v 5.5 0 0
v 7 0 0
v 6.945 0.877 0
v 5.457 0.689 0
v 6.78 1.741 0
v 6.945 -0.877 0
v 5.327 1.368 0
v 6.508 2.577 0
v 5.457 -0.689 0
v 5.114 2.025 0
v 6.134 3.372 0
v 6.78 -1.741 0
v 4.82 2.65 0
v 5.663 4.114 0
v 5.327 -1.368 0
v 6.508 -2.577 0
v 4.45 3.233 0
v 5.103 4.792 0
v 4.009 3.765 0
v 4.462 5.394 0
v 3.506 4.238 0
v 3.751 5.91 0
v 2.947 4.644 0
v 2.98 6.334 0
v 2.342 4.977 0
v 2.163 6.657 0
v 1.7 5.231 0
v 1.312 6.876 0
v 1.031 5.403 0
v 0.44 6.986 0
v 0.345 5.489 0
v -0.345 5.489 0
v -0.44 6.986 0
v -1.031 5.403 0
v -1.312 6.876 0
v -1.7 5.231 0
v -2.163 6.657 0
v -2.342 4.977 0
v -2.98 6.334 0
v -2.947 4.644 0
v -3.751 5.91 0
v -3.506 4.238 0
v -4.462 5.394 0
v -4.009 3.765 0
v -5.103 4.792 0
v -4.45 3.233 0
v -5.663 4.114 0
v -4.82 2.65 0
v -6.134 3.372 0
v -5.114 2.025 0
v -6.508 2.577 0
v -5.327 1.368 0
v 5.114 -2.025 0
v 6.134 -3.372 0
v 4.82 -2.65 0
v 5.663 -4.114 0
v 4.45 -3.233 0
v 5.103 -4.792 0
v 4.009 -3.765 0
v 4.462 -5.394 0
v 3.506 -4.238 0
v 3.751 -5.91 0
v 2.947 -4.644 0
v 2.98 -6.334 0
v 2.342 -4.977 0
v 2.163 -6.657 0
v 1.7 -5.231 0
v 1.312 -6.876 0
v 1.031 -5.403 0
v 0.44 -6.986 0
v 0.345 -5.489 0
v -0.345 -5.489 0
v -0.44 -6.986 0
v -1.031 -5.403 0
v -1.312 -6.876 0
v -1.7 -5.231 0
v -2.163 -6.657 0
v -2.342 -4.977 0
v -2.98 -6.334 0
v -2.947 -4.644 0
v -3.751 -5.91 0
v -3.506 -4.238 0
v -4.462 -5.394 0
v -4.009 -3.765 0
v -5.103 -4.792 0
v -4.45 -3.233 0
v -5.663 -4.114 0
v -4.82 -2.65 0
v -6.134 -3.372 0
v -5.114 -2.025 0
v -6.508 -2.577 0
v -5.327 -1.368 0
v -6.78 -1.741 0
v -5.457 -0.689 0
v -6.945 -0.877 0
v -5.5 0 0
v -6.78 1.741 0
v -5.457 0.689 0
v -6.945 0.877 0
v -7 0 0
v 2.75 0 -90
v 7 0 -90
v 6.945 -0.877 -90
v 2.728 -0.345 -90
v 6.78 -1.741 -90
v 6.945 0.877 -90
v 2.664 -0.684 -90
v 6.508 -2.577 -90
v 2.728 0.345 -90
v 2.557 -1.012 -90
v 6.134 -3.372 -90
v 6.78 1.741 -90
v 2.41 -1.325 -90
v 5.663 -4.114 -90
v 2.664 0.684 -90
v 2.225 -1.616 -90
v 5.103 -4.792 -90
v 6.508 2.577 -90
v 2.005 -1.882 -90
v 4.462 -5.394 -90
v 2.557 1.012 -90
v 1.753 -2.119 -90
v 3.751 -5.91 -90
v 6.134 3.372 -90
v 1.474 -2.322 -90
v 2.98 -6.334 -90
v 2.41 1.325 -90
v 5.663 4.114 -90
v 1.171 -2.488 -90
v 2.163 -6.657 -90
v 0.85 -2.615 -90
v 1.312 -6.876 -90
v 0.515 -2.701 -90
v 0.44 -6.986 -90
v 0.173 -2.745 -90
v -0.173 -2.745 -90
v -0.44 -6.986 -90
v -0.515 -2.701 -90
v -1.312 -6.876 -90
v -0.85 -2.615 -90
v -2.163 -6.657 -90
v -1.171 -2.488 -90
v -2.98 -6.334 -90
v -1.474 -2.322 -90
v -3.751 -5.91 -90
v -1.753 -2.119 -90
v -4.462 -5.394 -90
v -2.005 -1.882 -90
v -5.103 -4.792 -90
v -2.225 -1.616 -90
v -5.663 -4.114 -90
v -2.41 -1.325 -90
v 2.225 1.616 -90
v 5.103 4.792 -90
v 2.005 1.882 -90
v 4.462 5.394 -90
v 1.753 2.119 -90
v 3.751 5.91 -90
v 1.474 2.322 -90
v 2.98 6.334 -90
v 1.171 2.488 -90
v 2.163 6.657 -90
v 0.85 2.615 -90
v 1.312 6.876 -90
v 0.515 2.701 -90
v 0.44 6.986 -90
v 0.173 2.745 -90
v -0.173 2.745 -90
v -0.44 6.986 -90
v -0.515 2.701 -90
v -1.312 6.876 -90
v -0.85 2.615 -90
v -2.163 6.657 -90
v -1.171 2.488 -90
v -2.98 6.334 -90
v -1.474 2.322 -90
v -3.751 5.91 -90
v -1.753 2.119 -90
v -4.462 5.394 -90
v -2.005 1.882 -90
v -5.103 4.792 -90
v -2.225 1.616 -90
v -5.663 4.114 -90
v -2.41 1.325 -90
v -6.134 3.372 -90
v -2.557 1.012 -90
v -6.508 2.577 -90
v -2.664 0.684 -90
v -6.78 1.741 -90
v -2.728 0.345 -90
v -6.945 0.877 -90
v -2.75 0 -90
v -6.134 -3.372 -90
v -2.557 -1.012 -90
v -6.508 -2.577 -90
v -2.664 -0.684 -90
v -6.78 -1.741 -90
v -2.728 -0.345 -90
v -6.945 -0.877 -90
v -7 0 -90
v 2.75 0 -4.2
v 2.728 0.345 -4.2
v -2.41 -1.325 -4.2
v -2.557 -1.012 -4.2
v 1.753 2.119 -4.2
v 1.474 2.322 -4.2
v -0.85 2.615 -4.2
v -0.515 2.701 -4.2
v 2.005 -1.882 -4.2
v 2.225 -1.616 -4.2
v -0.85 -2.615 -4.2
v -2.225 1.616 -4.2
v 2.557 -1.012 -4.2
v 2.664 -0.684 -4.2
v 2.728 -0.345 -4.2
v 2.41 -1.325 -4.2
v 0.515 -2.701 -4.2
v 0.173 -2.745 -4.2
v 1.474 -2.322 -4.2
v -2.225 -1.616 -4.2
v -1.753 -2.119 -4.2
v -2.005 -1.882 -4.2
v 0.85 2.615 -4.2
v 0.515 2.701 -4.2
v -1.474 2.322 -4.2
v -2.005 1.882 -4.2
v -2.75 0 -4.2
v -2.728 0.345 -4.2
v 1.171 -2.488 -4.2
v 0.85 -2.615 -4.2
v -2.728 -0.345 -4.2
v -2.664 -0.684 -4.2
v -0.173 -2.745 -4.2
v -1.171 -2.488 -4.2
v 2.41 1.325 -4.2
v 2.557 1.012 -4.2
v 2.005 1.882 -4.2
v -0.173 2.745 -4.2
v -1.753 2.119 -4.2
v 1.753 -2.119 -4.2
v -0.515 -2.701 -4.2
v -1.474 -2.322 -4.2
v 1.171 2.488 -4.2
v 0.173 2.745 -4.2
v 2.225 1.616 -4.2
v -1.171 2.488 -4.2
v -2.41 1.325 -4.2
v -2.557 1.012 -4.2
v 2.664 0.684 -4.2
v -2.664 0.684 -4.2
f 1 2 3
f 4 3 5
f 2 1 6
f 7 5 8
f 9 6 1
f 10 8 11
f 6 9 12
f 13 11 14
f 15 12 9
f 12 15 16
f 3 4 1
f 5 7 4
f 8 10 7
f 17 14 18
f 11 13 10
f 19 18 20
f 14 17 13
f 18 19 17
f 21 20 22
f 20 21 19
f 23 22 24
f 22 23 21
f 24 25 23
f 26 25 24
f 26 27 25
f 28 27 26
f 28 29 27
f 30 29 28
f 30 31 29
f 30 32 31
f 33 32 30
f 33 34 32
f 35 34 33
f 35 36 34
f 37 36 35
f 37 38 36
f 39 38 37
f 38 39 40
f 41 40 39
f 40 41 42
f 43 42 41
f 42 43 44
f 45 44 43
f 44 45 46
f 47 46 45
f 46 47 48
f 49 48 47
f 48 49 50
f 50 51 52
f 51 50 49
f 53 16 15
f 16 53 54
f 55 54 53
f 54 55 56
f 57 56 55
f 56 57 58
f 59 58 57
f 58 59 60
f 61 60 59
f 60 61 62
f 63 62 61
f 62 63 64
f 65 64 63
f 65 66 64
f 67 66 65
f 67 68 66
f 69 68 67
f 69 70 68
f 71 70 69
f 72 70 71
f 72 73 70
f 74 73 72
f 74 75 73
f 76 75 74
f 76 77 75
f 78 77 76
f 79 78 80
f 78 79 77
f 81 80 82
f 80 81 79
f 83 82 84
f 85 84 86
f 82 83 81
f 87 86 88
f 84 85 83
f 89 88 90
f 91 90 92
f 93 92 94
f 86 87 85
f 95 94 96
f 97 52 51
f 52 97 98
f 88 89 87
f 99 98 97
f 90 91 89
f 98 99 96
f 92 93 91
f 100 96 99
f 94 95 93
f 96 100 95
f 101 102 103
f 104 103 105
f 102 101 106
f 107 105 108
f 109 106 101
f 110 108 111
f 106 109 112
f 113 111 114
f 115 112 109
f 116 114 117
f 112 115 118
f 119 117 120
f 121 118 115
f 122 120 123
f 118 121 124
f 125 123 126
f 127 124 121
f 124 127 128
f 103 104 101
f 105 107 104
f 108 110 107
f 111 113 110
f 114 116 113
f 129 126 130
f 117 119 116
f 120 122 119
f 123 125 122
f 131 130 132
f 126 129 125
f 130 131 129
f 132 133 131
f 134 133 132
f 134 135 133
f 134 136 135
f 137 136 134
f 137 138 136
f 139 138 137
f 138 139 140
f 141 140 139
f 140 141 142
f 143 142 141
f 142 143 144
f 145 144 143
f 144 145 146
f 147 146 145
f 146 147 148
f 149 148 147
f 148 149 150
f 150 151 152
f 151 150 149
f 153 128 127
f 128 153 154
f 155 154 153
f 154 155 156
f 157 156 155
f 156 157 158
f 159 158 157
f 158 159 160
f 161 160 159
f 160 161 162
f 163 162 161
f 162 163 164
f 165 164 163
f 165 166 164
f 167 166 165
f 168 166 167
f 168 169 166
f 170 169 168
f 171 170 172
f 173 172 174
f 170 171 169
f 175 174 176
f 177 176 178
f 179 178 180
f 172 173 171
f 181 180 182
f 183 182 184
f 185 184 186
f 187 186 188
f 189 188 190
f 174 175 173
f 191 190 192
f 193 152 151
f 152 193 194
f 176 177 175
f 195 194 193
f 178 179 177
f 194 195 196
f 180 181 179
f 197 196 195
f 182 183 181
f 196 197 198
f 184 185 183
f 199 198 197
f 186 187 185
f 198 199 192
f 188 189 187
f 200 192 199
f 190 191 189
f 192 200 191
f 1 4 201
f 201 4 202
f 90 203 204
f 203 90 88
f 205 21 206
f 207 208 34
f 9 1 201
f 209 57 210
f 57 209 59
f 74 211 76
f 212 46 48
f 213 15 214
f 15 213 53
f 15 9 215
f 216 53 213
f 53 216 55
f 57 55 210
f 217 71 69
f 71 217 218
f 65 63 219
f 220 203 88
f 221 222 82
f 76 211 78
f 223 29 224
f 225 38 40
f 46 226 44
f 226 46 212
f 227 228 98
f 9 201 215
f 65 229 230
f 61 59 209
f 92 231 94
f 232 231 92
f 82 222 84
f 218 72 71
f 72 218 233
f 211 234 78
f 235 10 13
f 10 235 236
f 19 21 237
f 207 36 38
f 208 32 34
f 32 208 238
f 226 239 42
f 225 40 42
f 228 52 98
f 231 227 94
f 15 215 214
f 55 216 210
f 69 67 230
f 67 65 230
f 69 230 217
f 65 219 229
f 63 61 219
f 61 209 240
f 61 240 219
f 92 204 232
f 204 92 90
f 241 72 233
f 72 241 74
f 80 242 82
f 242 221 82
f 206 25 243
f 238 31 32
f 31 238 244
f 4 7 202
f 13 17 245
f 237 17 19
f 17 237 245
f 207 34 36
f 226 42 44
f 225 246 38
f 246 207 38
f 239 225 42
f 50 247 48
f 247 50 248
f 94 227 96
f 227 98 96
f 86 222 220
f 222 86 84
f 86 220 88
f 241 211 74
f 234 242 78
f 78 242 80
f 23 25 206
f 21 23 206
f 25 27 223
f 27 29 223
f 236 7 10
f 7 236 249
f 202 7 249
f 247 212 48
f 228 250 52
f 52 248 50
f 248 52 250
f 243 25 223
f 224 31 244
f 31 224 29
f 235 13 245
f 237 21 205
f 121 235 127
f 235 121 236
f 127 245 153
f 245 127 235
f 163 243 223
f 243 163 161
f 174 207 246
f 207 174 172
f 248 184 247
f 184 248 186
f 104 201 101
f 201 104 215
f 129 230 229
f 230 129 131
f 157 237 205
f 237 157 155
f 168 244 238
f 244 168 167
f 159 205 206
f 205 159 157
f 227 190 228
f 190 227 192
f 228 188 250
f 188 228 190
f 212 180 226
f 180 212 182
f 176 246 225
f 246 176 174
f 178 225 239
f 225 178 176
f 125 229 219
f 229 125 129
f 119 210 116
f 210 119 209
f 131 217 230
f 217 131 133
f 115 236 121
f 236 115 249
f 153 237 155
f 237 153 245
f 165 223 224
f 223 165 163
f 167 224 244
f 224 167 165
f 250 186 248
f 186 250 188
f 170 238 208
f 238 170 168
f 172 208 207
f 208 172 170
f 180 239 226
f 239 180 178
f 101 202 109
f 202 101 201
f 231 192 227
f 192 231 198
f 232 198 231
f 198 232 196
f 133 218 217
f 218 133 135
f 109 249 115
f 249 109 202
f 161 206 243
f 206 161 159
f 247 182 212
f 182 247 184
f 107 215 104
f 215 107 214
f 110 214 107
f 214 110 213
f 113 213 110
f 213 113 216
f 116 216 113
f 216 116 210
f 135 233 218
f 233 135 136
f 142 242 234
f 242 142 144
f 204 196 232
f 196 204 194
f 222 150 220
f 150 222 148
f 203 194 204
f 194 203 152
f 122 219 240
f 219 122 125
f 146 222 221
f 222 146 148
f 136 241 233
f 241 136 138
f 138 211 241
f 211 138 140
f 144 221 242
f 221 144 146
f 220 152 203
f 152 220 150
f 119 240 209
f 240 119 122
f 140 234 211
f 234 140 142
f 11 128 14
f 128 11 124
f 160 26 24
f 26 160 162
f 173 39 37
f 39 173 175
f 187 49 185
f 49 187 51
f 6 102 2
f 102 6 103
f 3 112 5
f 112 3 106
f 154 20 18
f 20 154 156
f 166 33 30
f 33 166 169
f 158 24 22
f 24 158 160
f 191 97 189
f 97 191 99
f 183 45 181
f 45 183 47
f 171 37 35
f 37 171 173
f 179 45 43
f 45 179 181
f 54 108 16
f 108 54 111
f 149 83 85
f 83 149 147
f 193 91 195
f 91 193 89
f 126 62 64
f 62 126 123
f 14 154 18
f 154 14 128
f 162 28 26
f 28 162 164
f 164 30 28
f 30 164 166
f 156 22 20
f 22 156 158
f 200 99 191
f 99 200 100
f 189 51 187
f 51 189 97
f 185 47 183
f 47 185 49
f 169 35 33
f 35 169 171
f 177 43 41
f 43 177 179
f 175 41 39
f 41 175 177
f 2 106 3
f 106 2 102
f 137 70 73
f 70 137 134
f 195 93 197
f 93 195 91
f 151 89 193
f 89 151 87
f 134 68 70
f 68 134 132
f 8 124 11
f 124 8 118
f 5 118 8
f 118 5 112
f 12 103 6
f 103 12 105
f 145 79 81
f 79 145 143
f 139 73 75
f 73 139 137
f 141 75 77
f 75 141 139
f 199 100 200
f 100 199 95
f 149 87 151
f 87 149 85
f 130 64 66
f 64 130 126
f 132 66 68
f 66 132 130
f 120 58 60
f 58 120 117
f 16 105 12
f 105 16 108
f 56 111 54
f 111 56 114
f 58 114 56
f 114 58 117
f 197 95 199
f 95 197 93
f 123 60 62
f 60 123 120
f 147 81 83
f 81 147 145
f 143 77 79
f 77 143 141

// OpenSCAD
$fn = 50;


difference() {
	union() {
		translate(v = [0, 0, -90.0000000000]) {
			cylinder(h = 90, r = 7.0000000000);
		}
		cylinder(h = 0, r = 16.0000000000);
	}
	union() {
		translate(v = [0, 0, 0]) {
			rotate(a = [0, 0, 0]) {
				difference() {
					union() {
						#translate(v = [0, 0, -90.0000000000]) {
							cylinder(h = 90, r = 2.2500000000);
						}
						#translate(v = [0, 0, -4.2000000000]) {
							cylinder(h = 4.2000000000, r1 = 2.7500000000, r2 = 5.5000000000);
						}
						#translate(v = [0, 0, -90.0000000000]) {
							cylinder(h = 90, r = 2.7500000000);
						}
						#translate(v = [0, 0, -90.0000000000]) {
							cylinder(h = 90, r = 2.2500000000);
						}
					}
					union();
				}
			}
		}
	}
}
